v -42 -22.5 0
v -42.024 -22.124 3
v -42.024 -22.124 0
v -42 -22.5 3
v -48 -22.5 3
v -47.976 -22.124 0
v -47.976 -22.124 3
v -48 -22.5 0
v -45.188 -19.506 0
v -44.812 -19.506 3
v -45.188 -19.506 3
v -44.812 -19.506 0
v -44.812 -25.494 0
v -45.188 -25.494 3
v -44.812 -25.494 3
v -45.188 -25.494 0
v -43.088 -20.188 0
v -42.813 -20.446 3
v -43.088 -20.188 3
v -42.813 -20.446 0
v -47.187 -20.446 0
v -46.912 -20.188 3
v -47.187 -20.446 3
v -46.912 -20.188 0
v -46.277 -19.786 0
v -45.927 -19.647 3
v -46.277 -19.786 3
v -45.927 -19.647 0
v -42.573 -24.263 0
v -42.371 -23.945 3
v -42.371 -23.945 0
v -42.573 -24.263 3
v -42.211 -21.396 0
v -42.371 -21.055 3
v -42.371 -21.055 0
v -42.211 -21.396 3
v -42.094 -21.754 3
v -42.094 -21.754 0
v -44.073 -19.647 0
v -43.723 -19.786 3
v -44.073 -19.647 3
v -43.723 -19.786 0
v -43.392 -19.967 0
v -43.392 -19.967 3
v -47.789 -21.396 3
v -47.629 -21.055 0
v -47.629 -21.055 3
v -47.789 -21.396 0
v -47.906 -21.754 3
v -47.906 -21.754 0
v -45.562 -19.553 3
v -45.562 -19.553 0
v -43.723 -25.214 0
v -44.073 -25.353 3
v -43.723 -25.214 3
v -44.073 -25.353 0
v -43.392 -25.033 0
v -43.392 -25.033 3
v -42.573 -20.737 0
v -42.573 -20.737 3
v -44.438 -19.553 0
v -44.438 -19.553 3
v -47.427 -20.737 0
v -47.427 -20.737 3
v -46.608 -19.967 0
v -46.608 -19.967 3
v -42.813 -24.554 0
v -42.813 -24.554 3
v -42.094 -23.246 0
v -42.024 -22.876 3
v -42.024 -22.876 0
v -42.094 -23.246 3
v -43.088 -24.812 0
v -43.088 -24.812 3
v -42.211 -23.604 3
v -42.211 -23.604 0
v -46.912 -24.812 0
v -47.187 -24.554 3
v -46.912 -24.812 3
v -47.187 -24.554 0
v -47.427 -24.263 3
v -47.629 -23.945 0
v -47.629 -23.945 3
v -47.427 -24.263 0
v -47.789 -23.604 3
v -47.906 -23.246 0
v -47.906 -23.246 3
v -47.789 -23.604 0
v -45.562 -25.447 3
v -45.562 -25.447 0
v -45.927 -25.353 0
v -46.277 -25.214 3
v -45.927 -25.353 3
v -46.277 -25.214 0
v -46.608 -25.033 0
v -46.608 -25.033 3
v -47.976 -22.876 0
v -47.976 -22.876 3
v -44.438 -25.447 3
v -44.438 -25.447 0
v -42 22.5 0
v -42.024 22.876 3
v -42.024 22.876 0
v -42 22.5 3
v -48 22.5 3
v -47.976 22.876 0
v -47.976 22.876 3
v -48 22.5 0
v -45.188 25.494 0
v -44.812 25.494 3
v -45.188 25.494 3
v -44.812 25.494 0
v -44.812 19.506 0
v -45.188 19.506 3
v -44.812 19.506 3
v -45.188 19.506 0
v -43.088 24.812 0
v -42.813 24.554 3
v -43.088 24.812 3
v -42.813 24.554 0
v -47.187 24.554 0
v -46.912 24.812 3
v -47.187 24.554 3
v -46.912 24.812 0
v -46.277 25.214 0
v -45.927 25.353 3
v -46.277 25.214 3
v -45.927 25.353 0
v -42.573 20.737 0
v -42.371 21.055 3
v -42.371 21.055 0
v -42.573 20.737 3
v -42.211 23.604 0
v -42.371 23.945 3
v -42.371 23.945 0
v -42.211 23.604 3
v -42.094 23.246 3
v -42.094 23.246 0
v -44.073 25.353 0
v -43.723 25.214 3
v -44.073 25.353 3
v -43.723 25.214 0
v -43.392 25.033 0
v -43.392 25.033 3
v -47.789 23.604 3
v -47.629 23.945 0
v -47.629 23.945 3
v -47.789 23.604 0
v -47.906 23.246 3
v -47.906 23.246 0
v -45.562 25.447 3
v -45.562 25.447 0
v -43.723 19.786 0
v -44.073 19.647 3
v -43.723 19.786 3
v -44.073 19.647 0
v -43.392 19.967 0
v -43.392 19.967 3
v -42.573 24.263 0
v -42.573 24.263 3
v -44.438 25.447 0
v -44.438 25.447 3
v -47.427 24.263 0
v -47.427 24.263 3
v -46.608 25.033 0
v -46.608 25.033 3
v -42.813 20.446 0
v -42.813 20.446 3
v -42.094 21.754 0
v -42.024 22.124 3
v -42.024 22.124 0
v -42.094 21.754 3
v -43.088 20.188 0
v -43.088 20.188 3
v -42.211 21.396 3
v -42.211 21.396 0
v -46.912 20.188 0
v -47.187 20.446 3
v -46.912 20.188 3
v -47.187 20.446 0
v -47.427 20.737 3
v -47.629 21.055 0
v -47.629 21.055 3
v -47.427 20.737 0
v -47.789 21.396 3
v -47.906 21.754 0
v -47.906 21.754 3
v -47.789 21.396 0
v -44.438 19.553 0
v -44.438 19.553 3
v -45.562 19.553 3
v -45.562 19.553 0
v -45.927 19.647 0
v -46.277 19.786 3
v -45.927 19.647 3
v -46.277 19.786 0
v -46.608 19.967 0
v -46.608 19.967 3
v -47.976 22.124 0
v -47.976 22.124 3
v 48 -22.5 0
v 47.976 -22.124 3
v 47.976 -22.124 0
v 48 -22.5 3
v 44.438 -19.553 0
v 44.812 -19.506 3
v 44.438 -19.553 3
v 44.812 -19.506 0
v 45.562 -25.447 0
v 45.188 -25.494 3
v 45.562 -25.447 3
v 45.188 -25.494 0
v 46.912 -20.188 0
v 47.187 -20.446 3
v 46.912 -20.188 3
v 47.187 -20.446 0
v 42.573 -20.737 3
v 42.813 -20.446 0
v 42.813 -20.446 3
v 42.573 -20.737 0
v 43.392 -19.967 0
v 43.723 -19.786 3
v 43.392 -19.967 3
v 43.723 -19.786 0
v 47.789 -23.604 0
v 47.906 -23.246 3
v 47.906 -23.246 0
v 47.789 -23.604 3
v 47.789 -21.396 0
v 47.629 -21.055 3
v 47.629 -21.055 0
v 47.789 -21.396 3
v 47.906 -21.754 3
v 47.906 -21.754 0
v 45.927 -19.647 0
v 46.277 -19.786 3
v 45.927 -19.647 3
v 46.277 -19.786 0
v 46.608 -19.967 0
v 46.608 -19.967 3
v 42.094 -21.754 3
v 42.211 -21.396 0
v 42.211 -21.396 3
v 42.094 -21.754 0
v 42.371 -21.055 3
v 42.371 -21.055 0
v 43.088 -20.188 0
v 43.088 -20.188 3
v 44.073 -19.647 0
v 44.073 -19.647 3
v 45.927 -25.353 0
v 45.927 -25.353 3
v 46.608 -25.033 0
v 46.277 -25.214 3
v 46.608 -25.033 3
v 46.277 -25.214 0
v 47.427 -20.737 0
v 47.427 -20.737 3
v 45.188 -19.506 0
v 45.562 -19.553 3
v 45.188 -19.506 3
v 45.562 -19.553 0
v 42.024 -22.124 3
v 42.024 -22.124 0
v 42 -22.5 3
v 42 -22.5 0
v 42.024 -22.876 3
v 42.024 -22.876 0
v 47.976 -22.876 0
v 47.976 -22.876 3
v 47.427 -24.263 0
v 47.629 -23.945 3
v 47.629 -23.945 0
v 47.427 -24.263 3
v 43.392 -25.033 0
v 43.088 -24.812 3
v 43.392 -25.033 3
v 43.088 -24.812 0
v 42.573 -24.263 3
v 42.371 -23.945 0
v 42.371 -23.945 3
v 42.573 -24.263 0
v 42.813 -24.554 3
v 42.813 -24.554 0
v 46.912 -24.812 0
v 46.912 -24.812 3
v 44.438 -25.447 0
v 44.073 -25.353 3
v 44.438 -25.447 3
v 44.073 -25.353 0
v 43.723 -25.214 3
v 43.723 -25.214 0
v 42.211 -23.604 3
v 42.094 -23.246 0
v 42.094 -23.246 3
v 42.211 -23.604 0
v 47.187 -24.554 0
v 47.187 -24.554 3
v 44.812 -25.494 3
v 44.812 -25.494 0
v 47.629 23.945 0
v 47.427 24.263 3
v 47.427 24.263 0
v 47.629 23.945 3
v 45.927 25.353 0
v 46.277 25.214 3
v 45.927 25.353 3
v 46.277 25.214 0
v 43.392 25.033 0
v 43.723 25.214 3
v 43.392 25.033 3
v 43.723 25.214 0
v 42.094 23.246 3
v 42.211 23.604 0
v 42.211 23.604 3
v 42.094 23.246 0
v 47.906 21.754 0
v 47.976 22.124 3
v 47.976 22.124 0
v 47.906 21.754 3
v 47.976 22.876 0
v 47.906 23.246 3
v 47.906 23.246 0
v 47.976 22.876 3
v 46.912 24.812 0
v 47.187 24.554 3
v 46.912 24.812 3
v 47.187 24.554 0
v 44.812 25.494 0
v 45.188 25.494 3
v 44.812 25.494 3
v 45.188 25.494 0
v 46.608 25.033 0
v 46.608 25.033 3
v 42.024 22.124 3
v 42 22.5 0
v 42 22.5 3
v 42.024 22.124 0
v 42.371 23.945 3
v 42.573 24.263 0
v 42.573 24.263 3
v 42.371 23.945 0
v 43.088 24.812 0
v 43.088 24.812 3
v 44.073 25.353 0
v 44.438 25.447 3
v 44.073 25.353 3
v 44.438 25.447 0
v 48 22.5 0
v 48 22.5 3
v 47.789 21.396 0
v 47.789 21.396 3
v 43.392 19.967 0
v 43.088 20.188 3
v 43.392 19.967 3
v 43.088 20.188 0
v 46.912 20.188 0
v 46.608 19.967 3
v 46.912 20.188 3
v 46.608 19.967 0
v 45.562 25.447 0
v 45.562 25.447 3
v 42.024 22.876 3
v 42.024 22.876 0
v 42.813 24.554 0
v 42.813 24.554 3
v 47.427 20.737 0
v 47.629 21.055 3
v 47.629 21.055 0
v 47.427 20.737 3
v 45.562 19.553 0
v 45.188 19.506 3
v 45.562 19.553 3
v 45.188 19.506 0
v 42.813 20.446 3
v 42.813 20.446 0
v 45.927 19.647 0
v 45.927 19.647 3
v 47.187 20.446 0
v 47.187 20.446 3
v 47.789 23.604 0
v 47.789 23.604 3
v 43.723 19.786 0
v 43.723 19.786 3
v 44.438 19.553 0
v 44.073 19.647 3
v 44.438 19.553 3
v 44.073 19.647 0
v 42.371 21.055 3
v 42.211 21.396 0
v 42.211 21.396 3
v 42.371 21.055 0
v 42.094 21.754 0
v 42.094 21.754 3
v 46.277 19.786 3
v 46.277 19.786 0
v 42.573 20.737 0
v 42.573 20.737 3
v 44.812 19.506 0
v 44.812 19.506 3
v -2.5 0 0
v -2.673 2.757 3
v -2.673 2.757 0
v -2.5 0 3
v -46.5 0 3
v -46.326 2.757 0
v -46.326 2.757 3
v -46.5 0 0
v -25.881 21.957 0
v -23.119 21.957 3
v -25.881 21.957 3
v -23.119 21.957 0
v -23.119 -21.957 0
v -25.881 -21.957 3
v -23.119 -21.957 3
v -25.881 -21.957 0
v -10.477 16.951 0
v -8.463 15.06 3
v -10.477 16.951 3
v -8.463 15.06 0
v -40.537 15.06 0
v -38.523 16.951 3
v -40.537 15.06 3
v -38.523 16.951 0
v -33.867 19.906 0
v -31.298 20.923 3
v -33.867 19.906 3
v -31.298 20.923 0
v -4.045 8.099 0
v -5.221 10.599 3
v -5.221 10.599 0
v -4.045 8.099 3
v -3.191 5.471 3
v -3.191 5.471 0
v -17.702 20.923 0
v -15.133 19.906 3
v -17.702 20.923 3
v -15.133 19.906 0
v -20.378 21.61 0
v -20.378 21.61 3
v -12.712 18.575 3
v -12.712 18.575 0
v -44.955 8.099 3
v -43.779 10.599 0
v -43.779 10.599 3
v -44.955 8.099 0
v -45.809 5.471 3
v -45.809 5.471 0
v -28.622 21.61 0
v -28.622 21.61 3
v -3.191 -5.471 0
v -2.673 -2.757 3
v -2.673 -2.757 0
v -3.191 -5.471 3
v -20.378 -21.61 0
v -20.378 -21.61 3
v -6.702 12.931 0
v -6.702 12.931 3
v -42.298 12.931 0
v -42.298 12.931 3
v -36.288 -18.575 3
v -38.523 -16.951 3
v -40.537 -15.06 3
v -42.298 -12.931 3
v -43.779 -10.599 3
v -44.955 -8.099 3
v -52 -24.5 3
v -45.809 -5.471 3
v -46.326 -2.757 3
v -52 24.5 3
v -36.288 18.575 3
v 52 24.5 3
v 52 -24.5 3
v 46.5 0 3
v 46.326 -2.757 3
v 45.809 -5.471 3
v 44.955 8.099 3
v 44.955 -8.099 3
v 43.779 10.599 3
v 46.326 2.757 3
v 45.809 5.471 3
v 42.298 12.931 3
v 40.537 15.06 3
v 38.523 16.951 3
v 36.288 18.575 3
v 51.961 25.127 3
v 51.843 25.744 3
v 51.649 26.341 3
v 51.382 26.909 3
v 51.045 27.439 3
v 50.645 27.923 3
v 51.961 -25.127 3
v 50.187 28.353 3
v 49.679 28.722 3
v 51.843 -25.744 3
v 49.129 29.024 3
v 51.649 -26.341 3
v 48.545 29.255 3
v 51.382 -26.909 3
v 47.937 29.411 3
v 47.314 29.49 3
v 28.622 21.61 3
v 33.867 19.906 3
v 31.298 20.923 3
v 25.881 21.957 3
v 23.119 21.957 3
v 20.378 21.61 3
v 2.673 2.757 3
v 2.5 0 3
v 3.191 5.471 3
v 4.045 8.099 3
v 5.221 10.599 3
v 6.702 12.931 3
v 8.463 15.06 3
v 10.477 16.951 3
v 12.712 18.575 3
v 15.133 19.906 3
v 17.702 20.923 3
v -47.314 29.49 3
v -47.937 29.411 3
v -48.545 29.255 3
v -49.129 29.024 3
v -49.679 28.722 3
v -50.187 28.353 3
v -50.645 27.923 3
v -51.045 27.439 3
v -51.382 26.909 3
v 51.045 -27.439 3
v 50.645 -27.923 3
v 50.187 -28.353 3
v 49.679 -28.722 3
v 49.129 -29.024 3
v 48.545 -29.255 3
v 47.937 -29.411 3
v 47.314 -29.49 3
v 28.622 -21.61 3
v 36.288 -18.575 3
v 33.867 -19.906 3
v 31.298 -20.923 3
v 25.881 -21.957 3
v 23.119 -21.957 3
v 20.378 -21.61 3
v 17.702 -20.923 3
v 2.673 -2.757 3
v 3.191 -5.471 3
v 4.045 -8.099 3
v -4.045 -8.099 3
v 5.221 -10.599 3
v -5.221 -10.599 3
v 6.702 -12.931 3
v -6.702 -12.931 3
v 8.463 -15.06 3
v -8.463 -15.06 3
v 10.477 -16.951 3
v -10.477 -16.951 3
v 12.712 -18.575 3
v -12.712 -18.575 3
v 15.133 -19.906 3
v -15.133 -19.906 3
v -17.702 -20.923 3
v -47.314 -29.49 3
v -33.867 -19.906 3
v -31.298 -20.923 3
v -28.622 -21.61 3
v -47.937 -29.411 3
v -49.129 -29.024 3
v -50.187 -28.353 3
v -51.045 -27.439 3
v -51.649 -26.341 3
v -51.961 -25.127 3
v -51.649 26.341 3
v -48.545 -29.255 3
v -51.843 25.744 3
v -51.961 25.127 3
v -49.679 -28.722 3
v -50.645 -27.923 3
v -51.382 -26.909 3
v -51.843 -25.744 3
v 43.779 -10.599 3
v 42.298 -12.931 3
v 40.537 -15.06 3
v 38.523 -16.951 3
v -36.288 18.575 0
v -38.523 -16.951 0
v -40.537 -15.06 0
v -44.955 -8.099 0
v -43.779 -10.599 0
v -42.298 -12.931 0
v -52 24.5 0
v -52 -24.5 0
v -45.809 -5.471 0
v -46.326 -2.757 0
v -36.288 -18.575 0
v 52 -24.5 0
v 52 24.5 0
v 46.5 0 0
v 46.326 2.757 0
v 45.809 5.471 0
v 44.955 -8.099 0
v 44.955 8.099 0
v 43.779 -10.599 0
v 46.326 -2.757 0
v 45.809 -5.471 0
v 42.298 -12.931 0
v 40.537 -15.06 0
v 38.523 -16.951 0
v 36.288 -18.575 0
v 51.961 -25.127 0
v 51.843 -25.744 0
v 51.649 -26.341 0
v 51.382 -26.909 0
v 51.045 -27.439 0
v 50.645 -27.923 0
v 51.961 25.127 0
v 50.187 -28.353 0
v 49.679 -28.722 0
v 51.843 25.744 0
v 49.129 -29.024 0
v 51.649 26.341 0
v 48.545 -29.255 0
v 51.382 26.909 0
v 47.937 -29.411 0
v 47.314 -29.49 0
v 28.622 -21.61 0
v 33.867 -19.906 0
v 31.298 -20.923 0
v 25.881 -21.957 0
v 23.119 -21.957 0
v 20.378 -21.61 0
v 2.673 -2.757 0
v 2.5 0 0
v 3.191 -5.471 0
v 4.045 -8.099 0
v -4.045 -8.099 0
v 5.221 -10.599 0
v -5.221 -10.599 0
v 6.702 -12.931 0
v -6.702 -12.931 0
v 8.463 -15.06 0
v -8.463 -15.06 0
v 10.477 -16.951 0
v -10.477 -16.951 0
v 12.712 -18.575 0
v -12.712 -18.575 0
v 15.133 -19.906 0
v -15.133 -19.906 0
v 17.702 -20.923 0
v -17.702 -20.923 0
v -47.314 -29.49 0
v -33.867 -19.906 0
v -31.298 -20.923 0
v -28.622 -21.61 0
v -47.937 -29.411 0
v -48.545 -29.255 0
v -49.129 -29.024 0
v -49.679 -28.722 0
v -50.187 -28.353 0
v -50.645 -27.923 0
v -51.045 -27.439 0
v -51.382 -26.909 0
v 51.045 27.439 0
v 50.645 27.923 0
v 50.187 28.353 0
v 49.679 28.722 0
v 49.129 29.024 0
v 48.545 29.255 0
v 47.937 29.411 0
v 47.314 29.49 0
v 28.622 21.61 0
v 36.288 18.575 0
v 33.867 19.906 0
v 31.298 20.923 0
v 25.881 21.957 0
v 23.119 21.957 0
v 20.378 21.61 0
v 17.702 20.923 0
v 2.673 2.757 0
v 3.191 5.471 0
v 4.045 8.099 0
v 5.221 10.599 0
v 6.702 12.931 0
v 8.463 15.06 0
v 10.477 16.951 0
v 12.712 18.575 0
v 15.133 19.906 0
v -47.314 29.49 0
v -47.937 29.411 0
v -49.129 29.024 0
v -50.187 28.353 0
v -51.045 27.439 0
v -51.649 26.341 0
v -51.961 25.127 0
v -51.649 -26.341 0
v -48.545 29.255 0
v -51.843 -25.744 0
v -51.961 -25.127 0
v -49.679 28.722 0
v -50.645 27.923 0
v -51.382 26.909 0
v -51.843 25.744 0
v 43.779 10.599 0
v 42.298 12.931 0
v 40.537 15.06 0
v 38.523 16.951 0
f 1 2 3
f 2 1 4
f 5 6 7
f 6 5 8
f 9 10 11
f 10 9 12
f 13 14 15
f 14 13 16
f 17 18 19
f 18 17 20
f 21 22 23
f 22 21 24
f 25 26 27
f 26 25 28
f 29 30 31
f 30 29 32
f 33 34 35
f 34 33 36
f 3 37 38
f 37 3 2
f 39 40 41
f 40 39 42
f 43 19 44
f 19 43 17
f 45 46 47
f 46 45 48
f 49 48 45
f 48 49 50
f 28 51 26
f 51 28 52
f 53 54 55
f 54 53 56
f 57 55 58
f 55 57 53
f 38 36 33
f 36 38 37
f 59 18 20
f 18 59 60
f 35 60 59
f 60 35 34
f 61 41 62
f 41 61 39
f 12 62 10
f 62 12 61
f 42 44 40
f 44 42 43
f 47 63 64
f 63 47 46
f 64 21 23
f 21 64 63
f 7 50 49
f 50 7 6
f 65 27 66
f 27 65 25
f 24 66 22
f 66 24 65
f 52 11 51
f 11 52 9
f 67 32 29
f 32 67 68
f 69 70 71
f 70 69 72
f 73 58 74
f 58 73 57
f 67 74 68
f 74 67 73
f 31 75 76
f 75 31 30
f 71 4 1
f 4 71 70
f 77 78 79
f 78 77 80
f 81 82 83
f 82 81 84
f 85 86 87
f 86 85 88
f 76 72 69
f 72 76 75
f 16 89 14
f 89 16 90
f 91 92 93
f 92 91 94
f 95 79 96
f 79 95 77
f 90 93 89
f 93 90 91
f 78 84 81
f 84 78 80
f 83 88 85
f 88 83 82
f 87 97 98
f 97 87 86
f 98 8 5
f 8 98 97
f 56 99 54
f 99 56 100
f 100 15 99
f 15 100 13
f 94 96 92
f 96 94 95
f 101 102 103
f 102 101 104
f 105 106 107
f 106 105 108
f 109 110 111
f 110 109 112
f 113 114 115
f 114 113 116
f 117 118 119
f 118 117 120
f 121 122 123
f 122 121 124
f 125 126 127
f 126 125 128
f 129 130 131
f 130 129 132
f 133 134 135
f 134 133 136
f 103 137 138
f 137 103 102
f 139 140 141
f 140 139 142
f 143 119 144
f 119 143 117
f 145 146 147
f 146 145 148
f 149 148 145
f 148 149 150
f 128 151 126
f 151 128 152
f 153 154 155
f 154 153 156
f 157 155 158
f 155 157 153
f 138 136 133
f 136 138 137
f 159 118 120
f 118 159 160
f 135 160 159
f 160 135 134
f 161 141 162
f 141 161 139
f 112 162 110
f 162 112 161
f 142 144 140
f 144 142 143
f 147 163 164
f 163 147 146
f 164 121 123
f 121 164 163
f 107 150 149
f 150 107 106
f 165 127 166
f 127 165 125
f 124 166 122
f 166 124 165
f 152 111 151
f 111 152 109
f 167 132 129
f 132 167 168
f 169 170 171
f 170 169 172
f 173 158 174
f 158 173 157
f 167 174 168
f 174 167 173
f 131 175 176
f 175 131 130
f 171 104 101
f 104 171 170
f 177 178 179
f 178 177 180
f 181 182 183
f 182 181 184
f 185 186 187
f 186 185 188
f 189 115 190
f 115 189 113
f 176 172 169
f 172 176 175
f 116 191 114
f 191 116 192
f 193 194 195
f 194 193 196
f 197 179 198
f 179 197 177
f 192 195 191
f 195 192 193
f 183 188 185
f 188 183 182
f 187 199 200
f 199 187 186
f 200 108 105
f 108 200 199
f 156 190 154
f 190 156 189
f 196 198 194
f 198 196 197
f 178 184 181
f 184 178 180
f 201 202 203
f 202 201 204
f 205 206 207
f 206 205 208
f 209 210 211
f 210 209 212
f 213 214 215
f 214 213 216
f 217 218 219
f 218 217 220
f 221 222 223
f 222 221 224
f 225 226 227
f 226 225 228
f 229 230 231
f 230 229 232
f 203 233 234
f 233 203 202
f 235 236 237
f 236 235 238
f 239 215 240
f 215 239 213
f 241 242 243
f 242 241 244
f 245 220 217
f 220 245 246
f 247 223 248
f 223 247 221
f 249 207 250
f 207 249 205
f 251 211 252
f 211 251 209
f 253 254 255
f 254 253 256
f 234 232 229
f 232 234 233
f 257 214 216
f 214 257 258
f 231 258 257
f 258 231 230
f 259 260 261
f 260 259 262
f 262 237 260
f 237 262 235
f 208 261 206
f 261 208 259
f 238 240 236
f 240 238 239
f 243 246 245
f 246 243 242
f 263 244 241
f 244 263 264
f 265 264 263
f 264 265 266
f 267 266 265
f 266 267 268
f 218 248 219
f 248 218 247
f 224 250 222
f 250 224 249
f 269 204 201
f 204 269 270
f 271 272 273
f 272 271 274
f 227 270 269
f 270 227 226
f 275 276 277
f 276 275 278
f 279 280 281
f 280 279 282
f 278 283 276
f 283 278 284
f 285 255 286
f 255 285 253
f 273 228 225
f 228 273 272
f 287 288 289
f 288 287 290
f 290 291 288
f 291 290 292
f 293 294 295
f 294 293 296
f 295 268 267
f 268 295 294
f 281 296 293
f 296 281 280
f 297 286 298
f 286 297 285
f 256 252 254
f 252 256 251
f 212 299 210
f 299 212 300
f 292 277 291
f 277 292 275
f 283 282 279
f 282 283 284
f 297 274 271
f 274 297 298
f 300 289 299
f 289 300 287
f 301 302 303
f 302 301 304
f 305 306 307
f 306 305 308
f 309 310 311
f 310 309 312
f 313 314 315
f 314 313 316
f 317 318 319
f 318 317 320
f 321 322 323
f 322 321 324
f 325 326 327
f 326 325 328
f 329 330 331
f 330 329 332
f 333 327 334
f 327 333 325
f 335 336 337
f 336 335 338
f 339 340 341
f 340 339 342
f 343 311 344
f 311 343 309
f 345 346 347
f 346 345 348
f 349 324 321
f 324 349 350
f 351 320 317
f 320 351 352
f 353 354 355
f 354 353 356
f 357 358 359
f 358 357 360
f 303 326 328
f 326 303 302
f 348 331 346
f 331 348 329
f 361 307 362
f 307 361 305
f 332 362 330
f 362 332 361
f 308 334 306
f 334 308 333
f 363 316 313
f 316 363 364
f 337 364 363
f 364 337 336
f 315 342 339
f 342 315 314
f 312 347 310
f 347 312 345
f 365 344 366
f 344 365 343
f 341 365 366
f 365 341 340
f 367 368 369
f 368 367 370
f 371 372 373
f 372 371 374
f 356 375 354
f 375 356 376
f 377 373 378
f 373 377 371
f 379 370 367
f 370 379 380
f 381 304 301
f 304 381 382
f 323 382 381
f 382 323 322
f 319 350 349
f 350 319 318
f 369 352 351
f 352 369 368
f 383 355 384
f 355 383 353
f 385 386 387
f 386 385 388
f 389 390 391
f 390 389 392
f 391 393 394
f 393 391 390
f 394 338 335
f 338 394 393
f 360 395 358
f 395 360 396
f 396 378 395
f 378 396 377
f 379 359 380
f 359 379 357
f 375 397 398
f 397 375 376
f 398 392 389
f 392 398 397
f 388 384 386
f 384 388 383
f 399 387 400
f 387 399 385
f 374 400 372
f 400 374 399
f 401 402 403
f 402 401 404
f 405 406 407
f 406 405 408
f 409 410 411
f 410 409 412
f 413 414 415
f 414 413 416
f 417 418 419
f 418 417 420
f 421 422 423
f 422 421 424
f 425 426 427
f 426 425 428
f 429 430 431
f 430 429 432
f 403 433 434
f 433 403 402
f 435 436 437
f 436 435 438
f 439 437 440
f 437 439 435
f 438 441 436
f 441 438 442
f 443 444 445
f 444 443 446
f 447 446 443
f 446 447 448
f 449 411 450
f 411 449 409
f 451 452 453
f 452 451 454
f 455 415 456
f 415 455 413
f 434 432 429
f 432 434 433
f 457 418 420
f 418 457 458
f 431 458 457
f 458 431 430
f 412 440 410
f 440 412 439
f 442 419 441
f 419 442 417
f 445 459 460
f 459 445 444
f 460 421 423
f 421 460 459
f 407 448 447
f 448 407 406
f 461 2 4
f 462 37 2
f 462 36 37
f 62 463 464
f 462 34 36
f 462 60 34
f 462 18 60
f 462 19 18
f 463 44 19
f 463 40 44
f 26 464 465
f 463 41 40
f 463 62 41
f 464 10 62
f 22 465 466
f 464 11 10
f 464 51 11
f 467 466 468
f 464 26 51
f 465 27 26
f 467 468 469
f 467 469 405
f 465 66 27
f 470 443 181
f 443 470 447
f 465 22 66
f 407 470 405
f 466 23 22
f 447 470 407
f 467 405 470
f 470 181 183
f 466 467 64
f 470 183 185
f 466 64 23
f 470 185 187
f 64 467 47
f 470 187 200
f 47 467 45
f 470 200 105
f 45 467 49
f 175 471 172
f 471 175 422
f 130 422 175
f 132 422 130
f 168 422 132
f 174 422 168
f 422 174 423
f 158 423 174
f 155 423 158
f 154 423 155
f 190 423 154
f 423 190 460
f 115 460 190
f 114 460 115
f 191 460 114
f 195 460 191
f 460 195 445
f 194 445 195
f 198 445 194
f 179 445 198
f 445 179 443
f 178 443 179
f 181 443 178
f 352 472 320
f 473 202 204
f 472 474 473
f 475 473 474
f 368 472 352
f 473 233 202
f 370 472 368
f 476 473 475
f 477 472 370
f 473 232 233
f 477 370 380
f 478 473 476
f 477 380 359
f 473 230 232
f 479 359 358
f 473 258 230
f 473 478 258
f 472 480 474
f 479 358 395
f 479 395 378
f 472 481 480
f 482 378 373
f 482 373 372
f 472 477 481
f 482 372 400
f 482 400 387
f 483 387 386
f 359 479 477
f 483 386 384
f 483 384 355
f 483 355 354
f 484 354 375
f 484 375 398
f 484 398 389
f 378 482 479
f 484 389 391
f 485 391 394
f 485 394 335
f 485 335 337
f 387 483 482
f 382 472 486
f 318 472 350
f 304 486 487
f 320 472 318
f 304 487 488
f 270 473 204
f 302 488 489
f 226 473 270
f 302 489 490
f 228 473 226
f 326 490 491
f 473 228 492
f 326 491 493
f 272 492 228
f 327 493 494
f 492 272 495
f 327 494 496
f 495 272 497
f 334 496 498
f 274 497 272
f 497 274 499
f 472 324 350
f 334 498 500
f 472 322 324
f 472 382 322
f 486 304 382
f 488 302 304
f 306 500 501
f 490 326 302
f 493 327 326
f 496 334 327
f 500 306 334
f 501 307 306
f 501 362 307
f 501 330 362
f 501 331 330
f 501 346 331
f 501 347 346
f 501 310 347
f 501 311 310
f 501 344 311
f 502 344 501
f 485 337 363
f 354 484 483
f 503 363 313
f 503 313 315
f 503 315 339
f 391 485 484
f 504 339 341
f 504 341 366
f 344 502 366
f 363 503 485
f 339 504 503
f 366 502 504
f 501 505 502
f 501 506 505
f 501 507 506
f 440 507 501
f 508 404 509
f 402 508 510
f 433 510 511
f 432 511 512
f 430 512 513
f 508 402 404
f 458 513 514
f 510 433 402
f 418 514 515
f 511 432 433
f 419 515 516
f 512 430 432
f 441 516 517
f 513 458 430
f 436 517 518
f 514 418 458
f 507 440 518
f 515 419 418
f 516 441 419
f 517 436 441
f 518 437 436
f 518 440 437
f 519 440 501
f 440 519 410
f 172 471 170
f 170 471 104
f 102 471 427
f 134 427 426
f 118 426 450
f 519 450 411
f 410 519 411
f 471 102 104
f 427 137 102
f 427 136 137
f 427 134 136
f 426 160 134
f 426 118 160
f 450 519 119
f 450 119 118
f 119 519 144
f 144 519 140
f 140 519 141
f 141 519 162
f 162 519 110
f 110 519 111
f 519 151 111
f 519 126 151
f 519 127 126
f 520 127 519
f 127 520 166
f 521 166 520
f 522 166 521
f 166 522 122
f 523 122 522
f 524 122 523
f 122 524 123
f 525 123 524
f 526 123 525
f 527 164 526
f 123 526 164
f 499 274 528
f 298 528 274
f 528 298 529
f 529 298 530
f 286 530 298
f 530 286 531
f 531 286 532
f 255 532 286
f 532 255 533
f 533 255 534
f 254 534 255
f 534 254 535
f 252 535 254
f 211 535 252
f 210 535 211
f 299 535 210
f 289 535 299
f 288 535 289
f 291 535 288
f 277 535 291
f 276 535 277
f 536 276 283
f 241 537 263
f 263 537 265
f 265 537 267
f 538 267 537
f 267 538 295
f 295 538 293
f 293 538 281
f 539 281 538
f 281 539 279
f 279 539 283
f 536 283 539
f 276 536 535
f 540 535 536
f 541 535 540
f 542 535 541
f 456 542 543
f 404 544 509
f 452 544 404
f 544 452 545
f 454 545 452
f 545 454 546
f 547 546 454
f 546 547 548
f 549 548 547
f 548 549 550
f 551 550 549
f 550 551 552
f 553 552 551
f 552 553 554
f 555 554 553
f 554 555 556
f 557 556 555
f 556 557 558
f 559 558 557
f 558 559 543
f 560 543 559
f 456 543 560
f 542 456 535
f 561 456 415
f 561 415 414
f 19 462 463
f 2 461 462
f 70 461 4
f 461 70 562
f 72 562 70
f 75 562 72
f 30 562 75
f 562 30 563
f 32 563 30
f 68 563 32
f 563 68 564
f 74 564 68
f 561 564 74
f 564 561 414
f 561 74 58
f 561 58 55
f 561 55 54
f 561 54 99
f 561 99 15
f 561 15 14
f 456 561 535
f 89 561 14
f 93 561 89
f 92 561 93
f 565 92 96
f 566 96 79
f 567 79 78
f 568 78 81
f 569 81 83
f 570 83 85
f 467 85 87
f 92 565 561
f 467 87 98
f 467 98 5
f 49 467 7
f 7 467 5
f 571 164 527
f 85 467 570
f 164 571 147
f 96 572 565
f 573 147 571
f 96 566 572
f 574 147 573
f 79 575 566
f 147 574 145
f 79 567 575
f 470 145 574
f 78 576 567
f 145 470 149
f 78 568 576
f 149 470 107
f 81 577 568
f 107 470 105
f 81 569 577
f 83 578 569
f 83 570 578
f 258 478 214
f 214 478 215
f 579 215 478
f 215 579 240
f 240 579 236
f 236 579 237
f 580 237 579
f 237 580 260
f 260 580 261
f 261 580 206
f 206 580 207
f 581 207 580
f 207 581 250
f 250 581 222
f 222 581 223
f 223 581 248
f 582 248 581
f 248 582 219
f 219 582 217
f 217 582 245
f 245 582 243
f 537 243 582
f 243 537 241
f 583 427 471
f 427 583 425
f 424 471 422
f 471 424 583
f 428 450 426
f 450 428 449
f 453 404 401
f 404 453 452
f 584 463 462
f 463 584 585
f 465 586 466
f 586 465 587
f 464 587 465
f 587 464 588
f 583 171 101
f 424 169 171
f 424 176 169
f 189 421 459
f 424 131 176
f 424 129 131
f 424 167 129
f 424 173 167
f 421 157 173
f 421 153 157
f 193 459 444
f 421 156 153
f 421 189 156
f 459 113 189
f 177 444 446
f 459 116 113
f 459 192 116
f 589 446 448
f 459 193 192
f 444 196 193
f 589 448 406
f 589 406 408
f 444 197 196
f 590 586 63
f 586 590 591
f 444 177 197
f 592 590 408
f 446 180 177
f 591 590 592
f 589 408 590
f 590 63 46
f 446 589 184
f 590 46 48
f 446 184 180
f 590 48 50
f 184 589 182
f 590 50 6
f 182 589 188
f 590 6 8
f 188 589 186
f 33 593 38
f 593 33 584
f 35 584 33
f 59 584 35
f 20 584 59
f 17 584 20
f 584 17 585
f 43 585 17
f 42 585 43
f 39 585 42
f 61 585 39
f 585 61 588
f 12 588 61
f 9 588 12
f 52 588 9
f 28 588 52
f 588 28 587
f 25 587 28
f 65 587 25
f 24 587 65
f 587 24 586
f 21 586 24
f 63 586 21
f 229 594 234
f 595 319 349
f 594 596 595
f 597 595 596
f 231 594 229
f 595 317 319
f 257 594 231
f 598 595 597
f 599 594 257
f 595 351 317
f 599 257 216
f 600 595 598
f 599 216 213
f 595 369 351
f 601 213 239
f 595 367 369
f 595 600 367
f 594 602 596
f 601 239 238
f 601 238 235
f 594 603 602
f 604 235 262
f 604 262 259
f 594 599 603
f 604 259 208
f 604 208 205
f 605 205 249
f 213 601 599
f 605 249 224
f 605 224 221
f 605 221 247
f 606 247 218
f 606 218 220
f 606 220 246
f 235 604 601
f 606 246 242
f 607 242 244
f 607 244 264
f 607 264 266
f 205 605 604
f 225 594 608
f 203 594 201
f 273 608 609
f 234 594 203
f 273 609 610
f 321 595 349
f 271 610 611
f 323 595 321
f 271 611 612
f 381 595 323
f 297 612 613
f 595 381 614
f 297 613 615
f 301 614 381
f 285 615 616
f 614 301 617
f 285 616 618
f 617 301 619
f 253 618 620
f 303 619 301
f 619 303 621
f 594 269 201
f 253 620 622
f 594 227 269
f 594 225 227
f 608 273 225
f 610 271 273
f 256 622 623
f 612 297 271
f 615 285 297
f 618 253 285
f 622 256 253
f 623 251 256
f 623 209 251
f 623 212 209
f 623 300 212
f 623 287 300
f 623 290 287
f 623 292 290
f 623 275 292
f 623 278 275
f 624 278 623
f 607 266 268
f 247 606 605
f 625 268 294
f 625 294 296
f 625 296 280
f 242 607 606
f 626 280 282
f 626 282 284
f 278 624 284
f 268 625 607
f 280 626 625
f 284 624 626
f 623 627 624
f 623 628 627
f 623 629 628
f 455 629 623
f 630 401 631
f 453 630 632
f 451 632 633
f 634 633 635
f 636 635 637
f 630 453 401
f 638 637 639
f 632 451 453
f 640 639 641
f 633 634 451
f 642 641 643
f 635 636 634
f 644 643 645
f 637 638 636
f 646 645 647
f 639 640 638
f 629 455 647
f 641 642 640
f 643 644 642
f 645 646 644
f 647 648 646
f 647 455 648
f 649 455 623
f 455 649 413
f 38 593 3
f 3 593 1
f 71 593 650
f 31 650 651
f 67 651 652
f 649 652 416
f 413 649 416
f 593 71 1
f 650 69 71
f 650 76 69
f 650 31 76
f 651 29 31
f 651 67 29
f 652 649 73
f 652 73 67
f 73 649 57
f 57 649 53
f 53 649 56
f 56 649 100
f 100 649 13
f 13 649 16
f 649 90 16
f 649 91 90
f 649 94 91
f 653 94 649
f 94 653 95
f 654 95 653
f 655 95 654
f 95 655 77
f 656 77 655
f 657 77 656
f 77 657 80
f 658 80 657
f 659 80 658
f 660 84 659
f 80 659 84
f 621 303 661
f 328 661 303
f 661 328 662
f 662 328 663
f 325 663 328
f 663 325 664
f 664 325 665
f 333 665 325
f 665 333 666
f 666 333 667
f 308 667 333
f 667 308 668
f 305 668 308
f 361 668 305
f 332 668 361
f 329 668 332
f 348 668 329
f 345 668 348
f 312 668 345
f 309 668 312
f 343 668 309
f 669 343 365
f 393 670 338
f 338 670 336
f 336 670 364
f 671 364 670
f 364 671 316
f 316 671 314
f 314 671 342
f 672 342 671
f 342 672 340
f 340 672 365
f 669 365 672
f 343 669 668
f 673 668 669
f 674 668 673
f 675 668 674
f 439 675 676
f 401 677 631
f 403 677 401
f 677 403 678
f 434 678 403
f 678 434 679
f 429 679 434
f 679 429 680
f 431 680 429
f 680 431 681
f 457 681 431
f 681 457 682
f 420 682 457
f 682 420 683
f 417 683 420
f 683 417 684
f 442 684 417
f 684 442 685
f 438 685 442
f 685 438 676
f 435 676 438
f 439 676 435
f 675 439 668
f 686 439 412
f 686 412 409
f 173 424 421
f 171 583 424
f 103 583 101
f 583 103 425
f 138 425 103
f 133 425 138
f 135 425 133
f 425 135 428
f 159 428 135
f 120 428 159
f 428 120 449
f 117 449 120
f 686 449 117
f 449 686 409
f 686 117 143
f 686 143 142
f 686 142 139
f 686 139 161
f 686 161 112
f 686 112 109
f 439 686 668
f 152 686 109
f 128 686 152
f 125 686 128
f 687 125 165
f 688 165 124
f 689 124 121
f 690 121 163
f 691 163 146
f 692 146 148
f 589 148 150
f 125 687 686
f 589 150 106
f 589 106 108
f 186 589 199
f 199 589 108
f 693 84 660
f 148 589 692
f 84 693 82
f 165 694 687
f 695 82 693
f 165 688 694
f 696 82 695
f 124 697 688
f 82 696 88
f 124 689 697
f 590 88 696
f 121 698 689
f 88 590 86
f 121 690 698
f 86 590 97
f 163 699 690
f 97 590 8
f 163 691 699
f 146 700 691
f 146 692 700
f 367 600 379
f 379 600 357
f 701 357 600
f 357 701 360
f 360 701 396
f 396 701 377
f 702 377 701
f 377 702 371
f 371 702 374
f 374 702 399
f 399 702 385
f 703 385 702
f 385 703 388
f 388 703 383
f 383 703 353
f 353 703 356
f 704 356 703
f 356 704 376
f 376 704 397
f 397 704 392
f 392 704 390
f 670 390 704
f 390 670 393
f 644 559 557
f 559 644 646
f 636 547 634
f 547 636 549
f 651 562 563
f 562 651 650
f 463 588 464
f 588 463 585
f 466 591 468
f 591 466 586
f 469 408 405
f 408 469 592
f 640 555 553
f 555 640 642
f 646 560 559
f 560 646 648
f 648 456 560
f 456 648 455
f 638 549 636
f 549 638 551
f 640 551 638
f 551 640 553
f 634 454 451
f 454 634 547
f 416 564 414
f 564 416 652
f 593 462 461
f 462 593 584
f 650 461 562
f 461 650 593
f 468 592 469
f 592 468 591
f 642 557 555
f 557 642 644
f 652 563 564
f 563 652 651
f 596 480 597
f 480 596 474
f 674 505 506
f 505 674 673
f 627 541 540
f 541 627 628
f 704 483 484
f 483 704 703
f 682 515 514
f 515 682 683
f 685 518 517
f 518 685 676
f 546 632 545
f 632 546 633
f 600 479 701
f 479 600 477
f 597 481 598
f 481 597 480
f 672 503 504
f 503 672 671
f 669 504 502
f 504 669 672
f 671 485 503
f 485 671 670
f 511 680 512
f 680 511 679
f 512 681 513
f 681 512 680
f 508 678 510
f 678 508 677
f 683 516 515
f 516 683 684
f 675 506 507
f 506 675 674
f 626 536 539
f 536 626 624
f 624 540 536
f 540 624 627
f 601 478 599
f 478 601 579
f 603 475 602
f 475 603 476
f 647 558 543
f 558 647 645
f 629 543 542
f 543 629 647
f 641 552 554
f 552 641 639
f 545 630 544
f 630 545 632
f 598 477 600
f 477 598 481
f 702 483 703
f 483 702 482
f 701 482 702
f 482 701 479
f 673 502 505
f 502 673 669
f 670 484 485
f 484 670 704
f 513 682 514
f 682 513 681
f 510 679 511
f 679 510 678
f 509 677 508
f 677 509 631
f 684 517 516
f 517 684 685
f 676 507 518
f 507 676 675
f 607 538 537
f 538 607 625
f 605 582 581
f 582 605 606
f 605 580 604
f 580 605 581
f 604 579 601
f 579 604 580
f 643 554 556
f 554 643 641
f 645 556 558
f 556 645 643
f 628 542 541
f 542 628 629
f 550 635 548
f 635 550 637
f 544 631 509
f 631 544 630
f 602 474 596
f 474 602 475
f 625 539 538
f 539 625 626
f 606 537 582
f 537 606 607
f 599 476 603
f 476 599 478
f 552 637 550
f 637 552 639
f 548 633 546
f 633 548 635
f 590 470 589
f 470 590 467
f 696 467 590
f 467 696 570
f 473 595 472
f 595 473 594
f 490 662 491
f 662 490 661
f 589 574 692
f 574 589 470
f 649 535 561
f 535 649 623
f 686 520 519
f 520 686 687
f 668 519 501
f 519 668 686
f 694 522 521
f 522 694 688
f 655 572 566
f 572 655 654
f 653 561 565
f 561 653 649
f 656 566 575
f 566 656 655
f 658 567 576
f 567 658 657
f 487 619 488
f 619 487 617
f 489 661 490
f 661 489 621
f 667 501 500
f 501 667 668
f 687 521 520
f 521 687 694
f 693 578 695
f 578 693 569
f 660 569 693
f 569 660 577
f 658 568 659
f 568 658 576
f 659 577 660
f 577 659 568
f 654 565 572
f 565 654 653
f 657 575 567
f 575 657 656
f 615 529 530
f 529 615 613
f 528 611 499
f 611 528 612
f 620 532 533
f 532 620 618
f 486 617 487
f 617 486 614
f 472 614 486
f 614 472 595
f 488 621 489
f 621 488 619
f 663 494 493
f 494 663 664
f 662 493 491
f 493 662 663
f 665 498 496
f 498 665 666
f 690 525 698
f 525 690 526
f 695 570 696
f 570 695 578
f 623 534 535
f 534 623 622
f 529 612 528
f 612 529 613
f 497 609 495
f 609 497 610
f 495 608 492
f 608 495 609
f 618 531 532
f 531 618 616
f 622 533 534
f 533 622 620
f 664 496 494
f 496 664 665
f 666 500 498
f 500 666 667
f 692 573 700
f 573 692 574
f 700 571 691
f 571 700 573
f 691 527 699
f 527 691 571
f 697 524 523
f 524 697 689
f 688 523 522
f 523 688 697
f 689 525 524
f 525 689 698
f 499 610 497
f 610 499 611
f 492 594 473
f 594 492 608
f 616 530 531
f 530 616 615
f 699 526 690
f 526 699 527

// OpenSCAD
$fn = 50;


difference() {
	union() {
		hull() {
			translate(v = [-47.0000000000, 24.5000000000, 0]) {
				cylinder(h = 3, r = 5);
			}
			translate(v = [47.0000000000, 24.5000000000, 0]) {
				cylinder(h = 3, r = 5);
			}
			translate(v = [-47.0000000000, -24.5000000000, 0]) {
				cylinder(h = 3, r = 5);
			}
			translate(v = [47.0000000000, -24.5000000000, 0]) {
				cylinder(h = 3, r = 5);
			}
		}
	}
	union() {
		#translate(v = [-45.0000000000, -22.5000000000, -100.0000000000]) {
			cylinder(h = 200, r = 3.0000000000);
		}
		#translate(v = [-45.0000000000, 22.5000000000, -100.0000000000]) {
			cylinder(h = 200, r = 3.0000000000);
		}
		#translate(v = [45.0000000000, -22.5000000000, -100.0000000000]) {
			cylinder(h = 200, r = 3.0000000000);
		}
		#translate(v = [45.0000000000, 22.5000000000, -100.0000000000]) {
			cylinder(h = 200, r = 3.0000000000);
		}
		#translate(v = [-24.5000000000, 0, 0]) {
			cylinder(h = 3, r = 22.0000000000);
		}
		#translate(v = [24.5000000000, 0, 0]) {
			cylinder(h = 3, r = 22.0000000000);
		}
	}
}
